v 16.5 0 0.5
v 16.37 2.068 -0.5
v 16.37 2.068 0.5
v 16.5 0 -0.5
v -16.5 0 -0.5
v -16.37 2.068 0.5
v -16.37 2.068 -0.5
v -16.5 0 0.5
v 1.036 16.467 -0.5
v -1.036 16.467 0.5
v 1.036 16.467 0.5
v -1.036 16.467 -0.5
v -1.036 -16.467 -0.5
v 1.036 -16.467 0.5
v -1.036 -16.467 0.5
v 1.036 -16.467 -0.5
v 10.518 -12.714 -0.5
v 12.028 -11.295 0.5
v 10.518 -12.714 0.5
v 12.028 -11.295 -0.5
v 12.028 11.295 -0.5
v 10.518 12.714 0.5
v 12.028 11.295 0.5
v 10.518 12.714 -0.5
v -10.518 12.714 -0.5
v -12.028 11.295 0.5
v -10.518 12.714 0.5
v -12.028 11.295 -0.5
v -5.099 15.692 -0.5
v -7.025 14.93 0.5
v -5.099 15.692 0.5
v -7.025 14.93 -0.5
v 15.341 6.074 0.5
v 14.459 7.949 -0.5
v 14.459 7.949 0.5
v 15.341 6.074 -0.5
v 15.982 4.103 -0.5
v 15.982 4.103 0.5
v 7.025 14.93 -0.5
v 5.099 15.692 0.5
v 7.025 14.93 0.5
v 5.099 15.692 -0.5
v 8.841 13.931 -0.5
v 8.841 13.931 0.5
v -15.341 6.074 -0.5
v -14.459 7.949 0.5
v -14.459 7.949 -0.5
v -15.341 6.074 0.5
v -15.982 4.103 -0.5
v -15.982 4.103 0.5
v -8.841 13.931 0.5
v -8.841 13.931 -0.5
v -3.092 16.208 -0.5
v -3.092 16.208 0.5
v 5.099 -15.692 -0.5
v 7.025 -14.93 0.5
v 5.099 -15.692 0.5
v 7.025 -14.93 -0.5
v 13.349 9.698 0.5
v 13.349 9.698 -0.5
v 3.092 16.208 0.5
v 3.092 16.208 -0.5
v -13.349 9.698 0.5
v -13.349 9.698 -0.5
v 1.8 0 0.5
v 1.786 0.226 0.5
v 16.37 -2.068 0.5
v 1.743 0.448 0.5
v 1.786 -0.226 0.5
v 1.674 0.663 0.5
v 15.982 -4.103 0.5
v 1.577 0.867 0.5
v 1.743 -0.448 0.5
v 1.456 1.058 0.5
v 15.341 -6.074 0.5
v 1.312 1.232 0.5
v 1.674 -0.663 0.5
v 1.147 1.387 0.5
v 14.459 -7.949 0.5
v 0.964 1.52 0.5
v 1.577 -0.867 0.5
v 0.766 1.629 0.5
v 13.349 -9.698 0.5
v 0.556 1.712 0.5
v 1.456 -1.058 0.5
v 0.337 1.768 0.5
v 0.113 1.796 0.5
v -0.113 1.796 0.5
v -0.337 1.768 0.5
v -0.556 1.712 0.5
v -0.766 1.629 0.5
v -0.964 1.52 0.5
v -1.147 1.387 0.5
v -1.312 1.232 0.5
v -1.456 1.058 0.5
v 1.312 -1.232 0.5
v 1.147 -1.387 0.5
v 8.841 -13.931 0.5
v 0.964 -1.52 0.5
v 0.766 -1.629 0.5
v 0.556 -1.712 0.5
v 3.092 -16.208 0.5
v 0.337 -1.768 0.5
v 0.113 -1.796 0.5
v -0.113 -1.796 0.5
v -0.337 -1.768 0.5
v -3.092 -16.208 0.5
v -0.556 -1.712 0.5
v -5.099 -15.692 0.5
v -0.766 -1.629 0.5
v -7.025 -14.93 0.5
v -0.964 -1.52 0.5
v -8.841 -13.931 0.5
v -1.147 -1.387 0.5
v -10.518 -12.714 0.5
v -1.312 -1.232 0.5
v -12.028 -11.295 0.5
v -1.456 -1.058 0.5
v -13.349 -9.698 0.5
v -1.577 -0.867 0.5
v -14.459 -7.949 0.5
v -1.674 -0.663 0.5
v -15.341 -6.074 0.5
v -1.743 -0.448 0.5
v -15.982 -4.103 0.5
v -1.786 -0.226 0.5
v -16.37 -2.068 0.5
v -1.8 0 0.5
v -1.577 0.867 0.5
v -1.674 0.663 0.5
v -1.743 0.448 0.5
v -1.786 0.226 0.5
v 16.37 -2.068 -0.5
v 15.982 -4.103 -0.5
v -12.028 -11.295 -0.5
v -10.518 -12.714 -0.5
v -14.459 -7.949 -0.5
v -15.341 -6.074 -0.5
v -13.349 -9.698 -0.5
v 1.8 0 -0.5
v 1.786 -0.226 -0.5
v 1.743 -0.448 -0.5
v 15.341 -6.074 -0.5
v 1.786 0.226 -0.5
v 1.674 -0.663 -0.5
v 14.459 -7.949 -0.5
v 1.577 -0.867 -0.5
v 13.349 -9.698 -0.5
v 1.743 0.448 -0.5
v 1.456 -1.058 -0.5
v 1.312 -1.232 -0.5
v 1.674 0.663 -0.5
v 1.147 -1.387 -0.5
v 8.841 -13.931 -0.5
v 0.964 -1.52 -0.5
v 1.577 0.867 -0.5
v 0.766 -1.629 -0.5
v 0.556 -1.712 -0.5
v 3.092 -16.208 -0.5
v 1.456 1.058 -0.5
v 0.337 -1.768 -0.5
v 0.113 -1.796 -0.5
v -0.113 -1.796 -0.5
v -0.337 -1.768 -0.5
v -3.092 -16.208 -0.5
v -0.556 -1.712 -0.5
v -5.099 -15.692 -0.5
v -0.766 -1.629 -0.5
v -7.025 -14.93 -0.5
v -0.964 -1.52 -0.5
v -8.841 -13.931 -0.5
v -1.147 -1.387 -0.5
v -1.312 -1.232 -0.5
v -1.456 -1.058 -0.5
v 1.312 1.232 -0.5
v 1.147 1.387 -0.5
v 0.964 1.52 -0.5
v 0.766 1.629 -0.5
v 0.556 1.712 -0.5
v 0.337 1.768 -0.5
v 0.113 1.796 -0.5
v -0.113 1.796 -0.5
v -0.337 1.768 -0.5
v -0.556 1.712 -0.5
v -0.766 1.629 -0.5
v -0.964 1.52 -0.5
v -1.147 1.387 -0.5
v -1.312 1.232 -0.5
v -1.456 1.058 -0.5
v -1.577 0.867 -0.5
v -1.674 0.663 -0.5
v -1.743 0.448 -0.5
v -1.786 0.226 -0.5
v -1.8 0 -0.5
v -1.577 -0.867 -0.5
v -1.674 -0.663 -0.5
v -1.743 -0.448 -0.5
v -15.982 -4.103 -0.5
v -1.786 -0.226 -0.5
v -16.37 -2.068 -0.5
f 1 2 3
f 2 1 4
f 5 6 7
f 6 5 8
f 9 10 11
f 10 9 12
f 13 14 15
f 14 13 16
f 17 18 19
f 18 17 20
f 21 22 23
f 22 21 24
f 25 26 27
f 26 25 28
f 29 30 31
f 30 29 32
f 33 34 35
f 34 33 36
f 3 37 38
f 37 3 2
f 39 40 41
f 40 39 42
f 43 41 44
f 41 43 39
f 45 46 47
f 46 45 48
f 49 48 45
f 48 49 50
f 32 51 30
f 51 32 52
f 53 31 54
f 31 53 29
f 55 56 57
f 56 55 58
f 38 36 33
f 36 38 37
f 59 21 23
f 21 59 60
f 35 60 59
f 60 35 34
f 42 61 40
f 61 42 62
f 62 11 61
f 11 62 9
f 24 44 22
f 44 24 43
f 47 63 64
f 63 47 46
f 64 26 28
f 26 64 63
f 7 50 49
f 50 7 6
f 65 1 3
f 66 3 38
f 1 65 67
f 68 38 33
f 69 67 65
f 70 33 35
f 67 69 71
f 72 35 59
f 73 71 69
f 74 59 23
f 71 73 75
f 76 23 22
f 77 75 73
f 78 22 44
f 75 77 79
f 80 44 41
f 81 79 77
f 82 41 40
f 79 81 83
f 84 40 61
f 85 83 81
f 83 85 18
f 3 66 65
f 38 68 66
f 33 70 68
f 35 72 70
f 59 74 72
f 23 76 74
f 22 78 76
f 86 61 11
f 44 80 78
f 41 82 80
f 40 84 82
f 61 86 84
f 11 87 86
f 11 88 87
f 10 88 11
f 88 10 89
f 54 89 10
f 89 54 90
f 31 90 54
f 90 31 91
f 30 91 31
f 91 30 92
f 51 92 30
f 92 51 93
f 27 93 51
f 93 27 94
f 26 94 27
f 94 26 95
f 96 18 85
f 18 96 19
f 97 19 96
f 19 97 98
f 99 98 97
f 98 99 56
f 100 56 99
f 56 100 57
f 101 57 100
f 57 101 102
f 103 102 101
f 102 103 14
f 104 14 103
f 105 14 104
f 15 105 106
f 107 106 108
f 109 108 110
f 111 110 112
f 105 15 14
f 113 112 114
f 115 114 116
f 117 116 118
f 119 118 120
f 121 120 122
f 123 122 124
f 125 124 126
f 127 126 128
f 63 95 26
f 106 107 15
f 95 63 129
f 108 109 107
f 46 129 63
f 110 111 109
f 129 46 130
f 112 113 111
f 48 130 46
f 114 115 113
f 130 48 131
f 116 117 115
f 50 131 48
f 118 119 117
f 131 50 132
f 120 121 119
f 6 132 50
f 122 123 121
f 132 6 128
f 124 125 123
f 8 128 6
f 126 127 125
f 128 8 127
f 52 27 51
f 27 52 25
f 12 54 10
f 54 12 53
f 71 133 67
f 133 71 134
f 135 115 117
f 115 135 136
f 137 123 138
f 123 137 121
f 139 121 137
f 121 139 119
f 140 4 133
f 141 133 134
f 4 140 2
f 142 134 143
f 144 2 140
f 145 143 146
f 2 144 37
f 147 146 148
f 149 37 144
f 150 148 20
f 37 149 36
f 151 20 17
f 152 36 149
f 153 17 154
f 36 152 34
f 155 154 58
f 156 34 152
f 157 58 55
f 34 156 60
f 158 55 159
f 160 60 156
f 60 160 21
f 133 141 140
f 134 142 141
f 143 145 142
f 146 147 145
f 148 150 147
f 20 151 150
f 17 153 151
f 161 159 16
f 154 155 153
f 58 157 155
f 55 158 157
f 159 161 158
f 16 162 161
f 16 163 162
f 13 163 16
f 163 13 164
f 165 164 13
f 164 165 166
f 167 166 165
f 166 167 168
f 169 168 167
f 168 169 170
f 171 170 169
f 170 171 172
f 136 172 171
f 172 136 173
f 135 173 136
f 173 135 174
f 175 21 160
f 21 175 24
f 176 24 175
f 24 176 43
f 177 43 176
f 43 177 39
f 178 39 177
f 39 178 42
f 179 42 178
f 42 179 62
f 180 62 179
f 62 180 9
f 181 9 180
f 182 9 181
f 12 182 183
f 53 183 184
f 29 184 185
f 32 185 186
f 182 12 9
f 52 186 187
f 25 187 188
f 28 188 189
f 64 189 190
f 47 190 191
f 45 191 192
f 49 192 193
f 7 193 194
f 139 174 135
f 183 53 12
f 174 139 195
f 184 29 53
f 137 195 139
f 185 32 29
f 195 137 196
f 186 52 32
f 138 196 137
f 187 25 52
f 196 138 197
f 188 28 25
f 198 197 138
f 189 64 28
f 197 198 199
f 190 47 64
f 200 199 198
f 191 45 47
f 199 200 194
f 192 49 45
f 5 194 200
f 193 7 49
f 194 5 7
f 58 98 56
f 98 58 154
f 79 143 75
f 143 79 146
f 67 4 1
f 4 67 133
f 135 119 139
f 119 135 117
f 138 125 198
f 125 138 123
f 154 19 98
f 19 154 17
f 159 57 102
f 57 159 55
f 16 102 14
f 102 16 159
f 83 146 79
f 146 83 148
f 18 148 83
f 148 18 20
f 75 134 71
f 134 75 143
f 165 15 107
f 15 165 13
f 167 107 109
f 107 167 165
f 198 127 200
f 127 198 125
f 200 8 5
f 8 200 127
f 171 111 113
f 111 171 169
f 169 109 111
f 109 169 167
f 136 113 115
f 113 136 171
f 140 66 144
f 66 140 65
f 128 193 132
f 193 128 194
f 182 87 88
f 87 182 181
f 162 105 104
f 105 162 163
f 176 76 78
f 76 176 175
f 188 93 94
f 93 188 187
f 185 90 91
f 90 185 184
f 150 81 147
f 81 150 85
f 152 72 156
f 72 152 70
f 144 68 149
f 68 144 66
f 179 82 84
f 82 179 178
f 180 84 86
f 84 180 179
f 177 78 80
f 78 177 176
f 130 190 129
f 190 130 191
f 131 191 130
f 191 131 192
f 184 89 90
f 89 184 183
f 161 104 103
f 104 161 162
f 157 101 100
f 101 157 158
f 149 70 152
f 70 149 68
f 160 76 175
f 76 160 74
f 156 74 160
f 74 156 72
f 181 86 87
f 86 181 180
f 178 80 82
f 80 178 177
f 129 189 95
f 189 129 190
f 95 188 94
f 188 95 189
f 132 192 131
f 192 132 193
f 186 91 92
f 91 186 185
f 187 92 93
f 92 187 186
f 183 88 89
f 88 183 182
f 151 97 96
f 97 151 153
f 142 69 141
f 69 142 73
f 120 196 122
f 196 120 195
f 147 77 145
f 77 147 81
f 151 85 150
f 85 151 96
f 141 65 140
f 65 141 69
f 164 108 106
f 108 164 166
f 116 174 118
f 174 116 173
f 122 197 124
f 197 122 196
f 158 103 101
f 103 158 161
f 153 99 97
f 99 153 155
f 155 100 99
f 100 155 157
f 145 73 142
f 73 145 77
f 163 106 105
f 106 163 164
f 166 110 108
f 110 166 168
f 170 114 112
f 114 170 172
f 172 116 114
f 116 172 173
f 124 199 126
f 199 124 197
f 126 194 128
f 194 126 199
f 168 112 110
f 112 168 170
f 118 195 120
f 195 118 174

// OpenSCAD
$fn = 50;


difference() {
	union() {
		translate(v = [0, 0, -0.5000000000]) {
			cylinder(h = 1, r = 16.5000000000);
		}
	}
	union() {
		translate(v = [0, 0, -100.0000000000]) {
			cylinder(h = 200, r = 1.8000000000);
		}
	}
}
